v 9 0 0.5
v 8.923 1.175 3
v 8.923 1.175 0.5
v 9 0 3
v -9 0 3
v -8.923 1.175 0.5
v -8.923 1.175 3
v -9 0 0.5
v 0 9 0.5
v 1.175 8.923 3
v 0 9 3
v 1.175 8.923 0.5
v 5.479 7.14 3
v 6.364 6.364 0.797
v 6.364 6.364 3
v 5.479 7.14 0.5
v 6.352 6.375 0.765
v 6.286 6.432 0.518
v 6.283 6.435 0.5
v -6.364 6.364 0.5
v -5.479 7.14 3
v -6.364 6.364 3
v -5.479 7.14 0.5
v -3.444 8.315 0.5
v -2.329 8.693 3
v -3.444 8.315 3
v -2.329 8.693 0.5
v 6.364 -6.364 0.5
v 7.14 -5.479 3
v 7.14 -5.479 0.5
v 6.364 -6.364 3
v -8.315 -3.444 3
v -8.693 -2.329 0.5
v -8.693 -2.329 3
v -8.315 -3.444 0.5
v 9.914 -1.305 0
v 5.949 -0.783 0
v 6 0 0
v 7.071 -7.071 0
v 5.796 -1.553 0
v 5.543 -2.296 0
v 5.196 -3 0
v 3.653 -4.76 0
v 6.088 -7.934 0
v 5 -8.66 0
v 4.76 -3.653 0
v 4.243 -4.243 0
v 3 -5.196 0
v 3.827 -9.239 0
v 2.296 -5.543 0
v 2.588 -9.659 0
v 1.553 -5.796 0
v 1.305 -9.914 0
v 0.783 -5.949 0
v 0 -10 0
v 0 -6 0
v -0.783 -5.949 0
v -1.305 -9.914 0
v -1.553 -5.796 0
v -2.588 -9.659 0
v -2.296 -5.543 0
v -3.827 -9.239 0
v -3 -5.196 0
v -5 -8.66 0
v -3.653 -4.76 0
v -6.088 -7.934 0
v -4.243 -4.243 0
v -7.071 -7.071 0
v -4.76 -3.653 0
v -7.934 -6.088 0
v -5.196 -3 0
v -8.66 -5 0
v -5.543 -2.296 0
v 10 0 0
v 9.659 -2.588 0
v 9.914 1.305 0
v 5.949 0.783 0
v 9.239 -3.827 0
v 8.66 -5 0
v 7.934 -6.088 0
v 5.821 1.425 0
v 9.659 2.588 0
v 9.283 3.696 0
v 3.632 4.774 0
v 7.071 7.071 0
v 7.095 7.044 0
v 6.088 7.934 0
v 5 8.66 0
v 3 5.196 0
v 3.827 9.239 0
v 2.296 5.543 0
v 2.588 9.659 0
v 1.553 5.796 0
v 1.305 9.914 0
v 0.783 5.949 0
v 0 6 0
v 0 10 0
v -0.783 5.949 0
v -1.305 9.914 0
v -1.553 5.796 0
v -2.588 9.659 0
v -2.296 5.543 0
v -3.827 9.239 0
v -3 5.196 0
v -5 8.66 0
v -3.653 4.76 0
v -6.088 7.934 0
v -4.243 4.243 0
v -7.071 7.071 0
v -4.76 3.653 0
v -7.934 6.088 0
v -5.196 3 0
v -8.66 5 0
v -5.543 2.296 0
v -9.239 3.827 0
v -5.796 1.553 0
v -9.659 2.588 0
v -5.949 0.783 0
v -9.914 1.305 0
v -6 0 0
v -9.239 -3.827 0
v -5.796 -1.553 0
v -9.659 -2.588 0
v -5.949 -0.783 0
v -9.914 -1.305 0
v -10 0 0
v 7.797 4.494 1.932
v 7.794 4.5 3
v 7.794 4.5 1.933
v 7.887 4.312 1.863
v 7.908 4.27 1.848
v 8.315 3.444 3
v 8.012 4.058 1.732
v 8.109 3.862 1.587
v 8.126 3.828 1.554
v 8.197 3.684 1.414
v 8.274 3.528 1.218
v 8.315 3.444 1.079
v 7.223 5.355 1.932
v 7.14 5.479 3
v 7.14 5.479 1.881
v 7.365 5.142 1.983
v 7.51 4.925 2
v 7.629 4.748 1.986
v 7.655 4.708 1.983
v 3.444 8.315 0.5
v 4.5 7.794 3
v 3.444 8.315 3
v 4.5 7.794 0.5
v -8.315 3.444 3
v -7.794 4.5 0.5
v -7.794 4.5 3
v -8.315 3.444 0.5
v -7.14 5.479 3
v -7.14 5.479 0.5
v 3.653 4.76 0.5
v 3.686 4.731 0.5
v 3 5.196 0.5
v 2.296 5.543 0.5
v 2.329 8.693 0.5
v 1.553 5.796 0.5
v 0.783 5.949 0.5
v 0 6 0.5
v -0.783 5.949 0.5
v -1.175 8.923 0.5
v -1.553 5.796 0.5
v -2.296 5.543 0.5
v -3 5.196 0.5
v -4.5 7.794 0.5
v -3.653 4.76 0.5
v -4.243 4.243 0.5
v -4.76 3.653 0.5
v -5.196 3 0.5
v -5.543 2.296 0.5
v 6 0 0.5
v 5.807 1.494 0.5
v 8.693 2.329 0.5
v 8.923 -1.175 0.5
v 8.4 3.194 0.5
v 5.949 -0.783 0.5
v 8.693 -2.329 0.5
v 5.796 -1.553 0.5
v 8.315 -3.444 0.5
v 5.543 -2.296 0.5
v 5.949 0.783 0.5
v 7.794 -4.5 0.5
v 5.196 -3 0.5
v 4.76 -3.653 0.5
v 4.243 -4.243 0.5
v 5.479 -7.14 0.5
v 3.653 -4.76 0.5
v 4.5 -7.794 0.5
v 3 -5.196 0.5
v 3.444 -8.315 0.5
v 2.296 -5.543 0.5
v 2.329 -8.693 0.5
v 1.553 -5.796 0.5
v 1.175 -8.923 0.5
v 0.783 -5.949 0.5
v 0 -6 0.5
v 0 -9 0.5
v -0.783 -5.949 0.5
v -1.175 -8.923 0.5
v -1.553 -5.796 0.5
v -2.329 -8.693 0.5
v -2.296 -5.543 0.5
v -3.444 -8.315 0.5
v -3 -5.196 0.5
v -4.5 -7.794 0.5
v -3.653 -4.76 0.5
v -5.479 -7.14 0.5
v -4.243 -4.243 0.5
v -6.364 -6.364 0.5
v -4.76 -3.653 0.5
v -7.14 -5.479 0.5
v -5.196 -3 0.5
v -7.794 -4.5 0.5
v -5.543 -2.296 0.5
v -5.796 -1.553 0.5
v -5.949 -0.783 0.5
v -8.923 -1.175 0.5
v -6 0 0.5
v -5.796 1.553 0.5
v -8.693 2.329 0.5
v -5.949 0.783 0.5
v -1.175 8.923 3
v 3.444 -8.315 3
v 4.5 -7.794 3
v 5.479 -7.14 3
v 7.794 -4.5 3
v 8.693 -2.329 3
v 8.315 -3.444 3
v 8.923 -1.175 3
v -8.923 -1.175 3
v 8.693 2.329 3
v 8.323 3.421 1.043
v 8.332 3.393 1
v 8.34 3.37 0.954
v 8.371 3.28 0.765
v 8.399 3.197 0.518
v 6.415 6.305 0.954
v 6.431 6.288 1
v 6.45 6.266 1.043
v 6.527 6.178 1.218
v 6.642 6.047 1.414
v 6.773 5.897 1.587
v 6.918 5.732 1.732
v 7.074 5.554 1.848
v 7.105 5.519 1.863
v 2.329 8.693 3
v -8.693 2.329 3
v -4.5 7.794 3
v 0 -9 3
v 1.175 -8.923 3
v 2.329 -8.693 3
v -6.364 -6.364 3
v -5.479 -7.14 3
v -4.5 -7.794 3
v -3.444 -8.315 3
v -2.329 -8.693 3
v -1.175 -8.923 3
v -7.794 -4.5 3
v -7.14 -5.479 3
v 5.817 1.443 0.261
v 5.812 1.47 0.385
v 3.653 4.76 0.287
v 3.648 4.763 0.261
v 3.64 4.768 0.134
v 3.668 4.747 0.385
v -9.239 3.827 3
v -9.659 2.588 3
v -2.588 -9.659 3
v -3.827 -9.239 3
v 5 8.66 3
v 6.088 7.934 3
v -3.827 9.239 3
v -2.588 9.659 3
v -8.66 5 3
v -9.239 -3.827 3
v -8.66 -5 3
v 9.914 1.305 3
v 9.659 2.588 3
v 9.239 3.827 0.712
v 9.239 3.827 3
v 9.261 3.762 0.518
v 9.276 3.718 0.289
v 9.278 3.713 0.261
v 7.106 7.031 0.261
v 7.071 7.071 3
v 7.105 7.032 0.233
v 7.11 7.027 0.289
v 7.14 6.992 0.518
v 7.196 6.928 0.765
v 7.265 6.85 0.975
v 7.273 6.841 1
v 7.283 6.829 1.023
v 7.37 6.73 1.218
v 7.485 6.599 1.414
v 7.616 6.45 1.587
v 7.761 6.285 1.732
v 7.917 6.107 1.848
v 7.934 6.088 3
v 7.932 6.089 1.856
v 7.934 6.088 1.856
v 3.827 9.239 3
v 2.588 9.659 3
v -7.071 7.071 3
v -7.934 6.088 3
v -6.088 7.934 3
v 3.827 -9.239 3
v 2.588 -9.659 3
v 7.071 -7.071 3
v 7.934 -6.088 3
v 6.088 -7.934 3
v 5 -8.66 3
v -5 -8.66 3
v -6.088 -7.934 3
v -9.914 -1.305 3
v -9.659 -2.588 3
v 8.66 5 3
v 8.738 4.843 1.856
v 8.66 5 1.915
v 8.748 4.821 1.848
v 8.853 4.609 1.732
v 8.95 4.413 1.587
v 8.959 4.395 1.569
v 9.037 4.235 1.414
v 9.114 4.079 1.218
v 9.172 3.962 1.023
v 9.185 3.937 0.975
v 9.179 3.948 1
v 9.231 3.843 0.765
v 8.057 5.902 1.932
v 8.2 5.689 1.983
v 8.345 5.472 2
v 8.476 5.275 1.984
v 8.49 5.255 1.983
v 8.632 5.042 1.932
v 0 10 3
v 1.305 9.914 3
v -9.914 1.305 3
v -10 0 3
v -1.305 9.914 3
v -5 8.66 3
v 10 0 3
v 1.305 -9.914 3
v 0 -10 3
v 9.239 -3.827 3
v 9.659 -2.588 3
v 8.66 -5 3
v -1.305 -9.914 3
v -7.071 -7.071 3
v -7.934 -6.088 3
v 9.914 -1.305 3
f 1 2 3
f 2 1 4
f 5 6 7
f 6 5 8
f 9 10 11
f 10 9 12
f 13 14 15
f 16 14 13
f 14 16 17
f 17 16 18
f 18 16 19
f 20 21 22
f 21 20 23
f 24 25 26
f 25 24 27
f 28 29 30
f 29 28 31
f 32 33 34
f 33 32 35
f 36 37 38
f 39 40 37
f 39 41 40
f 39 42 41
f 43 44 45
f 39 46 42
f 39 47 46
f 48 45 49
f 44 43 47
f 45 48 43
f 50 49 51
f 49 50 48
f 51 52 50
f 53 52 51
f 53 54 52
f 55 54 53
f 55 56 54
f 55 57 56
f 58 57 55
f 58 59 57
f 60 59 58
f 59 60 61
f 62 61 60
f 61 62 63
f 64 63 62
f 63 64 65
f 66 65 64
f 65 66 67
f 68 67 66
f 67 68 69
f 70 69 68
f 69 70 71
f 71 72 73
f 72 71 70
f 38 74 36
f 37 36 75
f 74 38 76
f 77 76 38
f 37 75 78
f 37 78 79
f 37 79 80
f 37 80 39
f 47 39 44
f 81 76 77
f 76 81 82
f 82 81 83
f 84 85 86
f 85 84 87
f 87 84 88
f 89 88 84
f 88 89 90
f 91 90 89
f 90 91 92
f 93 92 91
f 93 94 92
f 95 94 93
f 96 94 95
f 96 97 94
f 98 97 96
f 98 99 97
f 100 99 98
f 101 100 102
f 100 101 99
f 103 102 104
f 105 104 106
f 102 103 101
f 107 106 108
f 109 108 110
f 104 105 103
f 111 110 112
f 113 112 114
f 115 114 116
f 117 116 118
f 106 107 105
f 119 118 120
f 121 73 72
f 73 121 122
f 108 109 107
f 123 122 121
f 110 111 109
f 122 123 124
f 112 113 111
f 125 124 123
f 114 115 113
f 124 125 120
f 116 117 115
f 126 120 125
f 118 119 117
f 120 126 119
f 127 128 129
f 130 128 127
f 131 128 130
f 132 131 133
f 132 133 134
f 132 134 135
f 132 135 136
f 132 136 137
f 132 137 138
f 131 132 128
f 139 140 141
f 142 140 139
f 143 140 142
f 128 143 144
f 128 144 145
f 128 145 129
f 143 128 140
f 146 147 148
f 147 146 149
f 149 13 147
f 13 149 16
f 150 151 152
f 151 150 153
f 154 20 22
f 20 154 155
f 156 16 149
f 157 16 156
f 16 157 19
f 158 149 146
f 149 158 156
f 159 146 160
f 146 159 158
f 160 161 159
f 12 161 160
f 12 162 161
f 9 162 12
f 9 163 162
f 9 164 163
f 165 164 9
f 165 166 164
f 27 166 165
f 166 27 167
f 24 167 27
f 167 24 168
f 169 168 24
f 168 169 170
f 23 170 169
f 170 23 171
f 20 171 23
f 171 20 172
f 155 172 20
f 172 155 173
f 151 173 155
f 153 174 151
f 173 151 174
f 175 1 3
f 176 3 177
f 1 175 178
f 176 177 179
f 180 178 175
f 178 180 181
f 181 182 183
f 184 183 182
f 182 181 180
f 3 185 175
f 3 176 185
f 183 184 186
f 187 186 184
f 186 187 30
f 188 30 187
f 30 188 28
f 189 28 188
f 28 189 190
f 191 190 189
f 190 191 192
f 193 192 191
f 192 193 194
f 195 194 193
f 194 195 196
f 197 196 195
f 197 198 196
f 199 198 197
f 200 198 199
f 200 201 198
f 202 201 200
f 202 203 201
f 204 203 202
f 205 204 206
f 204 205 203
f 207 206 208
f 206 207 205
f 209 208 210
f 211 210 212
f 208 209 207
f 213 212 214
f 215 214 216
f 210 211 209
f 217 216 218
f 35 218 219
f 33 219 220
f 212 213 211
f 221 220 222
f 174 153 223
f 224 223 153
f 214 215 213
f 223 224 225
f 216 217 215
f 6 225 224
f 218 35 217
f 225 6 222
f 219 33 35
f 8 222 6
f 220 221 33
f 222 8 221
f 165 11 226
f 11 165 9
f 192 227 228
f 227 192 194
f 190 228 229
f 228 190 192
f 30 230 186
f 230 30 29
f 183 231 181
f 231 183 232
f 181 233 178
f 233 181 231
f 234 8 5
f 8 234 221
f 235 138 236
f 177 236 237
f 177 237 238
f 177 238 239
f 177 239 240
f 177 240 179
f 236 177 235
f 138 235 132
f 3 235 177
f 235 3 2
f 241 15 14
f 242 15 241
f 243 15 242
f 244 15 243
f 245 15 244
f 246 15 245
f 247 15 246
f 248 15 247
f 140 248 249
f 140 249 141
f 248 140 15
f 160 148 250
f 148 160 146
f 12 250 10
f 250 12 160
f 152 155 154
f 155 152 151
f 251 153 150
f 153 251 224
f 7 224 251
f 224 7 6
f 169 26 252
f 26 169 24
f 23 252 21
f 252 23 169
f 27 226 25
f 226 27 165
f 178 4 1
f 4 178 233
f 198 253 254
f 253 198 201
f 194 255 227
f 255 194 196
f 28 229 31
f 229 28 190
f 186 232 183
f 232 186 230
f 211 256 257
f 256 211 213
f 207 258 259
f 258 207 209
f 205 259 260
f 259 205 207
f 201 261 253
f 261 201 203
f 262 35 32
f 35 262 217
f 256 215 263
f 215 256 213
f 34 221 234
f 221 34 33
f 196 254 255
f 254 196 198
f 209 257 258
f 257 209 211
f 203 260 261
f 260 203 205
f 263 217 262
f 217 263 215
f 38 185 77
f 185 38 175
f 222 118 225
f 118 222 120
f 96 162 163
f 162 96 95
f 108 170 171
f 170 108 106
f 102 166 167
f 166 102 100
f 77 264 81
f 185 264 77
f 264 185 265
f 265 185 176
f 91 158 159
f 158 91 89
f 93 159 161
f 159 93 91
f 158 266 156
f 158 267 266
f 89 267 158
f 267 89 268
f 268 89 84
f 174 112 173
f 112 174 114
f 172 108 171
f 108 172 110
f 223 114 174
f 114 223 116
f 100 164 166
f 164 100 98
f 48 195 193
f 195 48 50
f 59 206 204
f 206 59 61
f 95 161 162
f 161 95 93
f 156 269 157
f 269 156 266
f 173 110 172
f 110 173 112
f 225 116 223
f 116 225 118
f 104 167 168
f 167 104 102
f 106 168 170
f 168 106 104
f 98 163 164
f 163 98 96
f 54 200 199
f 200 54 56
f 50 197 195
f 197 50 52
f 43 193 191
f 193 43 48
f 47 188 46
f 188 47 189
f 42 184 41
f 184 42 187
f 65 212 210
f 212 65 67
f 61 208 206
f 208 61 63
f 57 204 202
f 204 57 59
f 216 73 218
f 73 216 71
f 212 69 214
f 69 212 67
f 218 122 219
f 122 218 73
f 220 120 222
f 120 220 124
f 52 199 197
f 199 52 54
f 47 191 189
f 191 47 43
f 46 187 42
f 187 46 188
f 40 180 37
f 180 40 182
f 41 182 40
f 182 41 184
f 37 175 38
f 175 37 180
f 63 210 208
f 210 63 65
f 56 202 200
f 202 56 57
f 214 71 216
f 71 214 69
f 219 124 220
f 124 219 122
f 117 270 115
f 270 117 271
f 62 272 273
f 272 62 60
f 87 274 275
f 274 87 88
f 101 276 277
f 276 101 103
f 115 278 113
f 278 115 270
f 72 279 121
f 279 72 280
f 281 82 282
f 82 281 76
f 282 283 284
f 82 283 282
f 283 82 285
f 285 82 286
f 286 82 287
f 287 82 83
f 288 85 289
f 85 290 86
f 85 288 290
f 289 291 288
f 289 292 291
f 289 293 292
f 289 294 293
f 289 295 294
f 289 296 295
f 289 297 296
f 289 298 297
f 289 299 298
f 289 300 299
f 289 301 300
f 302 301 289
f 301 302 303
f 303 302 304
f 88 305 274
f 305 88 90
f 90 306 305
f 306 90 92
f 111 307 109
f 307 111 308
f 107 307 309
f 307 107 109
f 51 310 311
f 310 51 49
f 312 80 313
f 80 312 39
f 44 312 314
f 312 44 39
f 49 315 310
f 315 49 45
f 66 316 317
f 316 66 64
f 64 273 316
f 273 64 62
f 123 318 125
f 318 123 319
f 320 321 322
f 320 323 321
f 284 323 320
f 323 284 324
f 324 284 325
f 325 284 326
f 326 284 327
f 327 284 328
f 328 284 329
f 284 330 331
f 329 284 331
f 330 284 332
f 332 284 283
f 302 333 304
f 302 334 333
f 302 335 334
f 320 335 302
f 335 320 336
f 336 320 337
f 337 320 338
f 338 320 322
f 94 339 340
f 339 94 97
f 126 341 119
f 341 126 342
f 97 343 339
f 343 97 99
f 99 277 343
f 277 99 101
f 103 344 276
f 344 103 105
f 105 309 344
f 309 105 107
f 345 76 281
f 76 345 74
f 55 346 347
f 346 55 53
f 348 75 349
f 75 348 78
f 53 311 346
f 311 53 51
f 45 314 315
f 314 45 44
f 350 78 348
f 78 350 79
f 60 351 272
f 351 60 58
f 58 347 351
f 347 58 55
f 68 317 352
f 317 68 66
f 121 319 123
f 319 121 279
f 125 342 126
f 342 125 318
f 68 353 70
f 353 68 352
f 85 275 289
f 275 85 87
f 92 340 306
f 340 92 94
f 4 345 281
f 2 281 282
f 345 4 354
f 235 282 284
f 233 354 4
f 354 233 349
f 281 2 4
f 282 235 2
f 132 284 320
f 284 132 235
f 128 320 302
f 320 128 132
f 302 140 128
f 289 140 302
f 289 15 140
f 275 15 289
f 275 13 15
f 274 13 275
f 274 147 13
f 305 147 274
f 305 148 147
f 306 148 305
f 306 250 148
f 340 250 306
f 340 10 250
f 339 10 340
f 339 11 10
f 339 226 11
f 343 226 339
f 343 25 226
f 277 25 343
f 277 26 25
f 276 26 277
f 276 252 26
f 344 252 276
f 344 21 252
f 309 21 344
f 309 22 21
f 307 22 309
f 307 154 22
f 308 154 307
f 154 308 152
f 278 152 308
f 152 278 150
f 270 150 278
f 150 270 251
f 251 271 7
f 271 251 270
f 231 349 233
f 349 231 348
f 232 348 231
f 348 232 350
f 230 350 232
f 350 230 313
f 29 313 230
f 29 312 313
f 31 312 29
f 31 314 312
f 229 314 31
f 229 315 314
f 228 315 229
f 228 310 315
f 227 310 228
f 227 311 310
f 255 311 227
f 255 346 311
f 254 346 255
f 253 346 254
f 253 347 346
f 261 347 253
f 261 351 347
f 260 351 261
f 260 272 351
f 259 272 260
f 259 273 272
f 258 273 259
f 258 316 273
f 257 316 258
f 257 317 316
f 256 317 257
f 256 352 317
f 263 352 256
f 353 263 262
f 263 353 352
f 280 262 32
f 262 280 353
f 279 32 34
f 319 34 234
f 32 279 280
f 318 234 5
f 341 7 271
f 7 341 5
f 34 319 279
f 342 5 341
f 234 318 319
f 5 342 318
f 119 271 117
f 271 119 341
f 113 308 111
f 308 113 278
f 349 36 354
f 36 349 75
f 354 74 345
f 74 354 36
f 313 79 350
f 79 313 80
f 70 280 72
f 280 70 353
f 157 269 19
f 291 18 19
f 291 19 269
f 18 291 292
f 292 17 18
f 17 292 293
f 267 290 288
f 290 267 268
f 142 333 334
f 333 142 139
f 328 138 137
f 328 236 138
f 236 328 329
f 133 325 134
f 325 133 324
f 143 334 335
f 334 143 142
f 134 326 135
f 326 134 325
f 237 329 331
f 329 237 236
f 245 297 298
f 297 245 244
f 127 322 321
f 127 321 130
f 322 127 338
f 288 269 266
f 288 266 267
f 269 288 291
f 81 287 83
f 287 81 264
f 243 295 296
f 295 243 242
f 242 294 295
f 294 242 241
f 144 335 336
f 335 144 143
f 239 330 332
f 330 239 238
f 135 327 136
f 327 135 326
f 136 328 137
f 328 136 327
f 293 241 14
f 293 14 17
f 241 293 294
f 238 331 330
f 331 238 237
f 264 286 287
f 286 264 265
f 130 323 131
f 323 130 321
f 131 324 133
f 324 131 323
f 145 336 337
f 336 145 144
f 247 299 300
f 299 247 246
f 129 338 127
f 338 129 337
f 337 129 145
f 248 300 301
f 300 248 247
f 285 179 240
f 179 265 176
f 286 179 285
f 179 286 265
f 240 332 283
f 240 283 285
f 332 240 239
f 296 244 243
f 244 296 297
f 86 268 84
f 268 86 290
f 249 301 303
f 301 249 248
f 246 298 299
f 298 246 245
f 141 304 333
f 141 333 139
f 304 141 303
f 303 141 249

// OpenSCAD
// file: ../build_environments.scad
// build_environments.scad: modules to build level sections
//

module pool(diameter=10.0, wall_height=2.0, step_width=3.0, connections=[])
{
    difference() {
        union() {
        difference() {
            cylinder(h=0.5,r1=diameter+step_width,r2=diameter+step_width,$fn=48);
            translate([0,0,-0.1])
                cylinder(h=0.7,r1=diameter,r2=diameter,$fn=48);
        }
        difference() {
            cylinder(h=wall_height,r1=diameter+step_width+1.0,r2=diameter+step_width+1.0,$fn=48);
            translate([0,0,-0.1])
                cylinder(h=wall_height+0.2,r1=diameter+step_width,r2=diameter+step_width,$fn=48);
        }
        }
    
        for (c = connections)
        {
            rotate([0,90,0]) {
                angle = atan2(c[1],c[0]);
                rotate([-angle,0,0]) {
                    cylinder(h=diameter+5.0,r1=c[2],r2=c[2],$fn=48);
                }
            }
        }
    }
}

module straight(length=10.0, width=2.0, dy1=0.0, dy2=0.0, dz=0.0)
{
    dims = [0, 0, 0, 0, 0, (dz/length)];
    matrix = [
        [ 1, dims[0], dims[1], 0 ],
        [ dims[2], 1, dims[4], 0 ],
        [ dims[5], dims[3], 1, 0 ],
        [ 0, 0, 0, 1 ]
    ];
    multmatrix(matrix)
    difference() {
        translate([dy1,0,0])
        union() {
            rotate([0,90,0]) {
                difference() {
                    cylinder(h=(length-dy1-dy2),r1=width+1.0,r2=width+1.0,$fn=24);
                    translate([0,0,-0.1])
                        cylinder(h=(length-dy1-dy2+0.2),r1=width,r2=width,$fn=24);
                }
                difference() {
                    cylinder(h=1.0,r1=width+2.0,r2=width+2.0,$fn=24);
                    translate([0,0,-0.1])
                        cylinder(h=1.2,r1=width,r2=width,$fn=24);
                }
                translate([0,0,(length-dy1-dy2)-1.0]) {
                    difference() {
                        cylinder(h=1.0,r1=width+2.0,r2=width+2.0,$fn=24);
                        translate([0,0,-0.1])
                            cylinder(h=1.2,r1=width,r2=width,$fn=24);
                    }
                }
            }
        }
        translate([0,0,-(2*width+4.0)/2])
            cube([3*length,3*length,2*width+4.0],center=true);
    }
}

module curve(p0=[0,0], center=[0,0], dir=1, angle=0.0, width=2.0)
{
    radius = sqrt((p0[0]-center[0])*(p0[0]-center[0]) + (p0[1]-center[1])*(p0[1]-center[1]));
    if (dir == 0) {
        difference() {
            rotate([0,0,-90])
            difference() {
                rotate_extrude(angle = angle, convexity = 10, $fn=32)
                    translate([radius, 0, 0])
                        circle(r = width+1.0,$fn=24);
                rotate([0,0,-1.0])
                    rotate_extrude(angle = angle+2.0, convexity = 10, $fn=32)
                        translate([radius, 0, 0])
                            circle(r = width,$fn=24);
            }
            translate([0,0,-(2*width+4.0)/2])
                cube([5*radius,5*radius,2*width+4.0],center=true);
        }
    }
    else {
        difference() {
            rotate([0,0,90])
            difference() {
                rotate_extrude(angle = -angle, convexity = 10, $fn=32)
                    translate([radius, 0, 0])
                        circle(r = width+1.0,$fn=24);
                rotate([0,0,1.0])
                    rotate_extrude(angle = -angle-2.0, convexity = 10, $fn=32)
                        translate([radius, 0, 0])
                            circle(r = width,$fn=24);
            }
            translate([0,0,-(2*width+4.0)/2])
                cube([5*radius,5*radius,2*width+4.0],center=true);
        }
    }

}

// test pool
//pool(diameter=12.0000, wall_height=3.0000, step_width=3.0000, connections=[[0.0000,-26.0000,2.0000], [23.6074,0.0000,2.0000]]);

// test straight, slope
//straight(length=26.0000, width=2.0000, dy1=11.8322, dy2=6.7082, dz=0.0000);
//straight(length=29.1549, width=12.0000, dy1=0.0000, dy2=0.0000, dz=-15.0000);

// test curve
//curve(p0=[23.6074, 0.0000], center=[23.6074, 5.0000], dir=0, angle=60.1011, width=2.0000);
//curve(p0=[33.6426, 12.4219], center=[37.9771, 9.9295], dir=1, angle=120.4627, width=2.0000);
// main file
use <../build_environments.scad>;
pool(diameter=6.0000, wall_height=3.0000, step_width=3.0000, connections=[[10.3254,6.7708,2.0000]]);
